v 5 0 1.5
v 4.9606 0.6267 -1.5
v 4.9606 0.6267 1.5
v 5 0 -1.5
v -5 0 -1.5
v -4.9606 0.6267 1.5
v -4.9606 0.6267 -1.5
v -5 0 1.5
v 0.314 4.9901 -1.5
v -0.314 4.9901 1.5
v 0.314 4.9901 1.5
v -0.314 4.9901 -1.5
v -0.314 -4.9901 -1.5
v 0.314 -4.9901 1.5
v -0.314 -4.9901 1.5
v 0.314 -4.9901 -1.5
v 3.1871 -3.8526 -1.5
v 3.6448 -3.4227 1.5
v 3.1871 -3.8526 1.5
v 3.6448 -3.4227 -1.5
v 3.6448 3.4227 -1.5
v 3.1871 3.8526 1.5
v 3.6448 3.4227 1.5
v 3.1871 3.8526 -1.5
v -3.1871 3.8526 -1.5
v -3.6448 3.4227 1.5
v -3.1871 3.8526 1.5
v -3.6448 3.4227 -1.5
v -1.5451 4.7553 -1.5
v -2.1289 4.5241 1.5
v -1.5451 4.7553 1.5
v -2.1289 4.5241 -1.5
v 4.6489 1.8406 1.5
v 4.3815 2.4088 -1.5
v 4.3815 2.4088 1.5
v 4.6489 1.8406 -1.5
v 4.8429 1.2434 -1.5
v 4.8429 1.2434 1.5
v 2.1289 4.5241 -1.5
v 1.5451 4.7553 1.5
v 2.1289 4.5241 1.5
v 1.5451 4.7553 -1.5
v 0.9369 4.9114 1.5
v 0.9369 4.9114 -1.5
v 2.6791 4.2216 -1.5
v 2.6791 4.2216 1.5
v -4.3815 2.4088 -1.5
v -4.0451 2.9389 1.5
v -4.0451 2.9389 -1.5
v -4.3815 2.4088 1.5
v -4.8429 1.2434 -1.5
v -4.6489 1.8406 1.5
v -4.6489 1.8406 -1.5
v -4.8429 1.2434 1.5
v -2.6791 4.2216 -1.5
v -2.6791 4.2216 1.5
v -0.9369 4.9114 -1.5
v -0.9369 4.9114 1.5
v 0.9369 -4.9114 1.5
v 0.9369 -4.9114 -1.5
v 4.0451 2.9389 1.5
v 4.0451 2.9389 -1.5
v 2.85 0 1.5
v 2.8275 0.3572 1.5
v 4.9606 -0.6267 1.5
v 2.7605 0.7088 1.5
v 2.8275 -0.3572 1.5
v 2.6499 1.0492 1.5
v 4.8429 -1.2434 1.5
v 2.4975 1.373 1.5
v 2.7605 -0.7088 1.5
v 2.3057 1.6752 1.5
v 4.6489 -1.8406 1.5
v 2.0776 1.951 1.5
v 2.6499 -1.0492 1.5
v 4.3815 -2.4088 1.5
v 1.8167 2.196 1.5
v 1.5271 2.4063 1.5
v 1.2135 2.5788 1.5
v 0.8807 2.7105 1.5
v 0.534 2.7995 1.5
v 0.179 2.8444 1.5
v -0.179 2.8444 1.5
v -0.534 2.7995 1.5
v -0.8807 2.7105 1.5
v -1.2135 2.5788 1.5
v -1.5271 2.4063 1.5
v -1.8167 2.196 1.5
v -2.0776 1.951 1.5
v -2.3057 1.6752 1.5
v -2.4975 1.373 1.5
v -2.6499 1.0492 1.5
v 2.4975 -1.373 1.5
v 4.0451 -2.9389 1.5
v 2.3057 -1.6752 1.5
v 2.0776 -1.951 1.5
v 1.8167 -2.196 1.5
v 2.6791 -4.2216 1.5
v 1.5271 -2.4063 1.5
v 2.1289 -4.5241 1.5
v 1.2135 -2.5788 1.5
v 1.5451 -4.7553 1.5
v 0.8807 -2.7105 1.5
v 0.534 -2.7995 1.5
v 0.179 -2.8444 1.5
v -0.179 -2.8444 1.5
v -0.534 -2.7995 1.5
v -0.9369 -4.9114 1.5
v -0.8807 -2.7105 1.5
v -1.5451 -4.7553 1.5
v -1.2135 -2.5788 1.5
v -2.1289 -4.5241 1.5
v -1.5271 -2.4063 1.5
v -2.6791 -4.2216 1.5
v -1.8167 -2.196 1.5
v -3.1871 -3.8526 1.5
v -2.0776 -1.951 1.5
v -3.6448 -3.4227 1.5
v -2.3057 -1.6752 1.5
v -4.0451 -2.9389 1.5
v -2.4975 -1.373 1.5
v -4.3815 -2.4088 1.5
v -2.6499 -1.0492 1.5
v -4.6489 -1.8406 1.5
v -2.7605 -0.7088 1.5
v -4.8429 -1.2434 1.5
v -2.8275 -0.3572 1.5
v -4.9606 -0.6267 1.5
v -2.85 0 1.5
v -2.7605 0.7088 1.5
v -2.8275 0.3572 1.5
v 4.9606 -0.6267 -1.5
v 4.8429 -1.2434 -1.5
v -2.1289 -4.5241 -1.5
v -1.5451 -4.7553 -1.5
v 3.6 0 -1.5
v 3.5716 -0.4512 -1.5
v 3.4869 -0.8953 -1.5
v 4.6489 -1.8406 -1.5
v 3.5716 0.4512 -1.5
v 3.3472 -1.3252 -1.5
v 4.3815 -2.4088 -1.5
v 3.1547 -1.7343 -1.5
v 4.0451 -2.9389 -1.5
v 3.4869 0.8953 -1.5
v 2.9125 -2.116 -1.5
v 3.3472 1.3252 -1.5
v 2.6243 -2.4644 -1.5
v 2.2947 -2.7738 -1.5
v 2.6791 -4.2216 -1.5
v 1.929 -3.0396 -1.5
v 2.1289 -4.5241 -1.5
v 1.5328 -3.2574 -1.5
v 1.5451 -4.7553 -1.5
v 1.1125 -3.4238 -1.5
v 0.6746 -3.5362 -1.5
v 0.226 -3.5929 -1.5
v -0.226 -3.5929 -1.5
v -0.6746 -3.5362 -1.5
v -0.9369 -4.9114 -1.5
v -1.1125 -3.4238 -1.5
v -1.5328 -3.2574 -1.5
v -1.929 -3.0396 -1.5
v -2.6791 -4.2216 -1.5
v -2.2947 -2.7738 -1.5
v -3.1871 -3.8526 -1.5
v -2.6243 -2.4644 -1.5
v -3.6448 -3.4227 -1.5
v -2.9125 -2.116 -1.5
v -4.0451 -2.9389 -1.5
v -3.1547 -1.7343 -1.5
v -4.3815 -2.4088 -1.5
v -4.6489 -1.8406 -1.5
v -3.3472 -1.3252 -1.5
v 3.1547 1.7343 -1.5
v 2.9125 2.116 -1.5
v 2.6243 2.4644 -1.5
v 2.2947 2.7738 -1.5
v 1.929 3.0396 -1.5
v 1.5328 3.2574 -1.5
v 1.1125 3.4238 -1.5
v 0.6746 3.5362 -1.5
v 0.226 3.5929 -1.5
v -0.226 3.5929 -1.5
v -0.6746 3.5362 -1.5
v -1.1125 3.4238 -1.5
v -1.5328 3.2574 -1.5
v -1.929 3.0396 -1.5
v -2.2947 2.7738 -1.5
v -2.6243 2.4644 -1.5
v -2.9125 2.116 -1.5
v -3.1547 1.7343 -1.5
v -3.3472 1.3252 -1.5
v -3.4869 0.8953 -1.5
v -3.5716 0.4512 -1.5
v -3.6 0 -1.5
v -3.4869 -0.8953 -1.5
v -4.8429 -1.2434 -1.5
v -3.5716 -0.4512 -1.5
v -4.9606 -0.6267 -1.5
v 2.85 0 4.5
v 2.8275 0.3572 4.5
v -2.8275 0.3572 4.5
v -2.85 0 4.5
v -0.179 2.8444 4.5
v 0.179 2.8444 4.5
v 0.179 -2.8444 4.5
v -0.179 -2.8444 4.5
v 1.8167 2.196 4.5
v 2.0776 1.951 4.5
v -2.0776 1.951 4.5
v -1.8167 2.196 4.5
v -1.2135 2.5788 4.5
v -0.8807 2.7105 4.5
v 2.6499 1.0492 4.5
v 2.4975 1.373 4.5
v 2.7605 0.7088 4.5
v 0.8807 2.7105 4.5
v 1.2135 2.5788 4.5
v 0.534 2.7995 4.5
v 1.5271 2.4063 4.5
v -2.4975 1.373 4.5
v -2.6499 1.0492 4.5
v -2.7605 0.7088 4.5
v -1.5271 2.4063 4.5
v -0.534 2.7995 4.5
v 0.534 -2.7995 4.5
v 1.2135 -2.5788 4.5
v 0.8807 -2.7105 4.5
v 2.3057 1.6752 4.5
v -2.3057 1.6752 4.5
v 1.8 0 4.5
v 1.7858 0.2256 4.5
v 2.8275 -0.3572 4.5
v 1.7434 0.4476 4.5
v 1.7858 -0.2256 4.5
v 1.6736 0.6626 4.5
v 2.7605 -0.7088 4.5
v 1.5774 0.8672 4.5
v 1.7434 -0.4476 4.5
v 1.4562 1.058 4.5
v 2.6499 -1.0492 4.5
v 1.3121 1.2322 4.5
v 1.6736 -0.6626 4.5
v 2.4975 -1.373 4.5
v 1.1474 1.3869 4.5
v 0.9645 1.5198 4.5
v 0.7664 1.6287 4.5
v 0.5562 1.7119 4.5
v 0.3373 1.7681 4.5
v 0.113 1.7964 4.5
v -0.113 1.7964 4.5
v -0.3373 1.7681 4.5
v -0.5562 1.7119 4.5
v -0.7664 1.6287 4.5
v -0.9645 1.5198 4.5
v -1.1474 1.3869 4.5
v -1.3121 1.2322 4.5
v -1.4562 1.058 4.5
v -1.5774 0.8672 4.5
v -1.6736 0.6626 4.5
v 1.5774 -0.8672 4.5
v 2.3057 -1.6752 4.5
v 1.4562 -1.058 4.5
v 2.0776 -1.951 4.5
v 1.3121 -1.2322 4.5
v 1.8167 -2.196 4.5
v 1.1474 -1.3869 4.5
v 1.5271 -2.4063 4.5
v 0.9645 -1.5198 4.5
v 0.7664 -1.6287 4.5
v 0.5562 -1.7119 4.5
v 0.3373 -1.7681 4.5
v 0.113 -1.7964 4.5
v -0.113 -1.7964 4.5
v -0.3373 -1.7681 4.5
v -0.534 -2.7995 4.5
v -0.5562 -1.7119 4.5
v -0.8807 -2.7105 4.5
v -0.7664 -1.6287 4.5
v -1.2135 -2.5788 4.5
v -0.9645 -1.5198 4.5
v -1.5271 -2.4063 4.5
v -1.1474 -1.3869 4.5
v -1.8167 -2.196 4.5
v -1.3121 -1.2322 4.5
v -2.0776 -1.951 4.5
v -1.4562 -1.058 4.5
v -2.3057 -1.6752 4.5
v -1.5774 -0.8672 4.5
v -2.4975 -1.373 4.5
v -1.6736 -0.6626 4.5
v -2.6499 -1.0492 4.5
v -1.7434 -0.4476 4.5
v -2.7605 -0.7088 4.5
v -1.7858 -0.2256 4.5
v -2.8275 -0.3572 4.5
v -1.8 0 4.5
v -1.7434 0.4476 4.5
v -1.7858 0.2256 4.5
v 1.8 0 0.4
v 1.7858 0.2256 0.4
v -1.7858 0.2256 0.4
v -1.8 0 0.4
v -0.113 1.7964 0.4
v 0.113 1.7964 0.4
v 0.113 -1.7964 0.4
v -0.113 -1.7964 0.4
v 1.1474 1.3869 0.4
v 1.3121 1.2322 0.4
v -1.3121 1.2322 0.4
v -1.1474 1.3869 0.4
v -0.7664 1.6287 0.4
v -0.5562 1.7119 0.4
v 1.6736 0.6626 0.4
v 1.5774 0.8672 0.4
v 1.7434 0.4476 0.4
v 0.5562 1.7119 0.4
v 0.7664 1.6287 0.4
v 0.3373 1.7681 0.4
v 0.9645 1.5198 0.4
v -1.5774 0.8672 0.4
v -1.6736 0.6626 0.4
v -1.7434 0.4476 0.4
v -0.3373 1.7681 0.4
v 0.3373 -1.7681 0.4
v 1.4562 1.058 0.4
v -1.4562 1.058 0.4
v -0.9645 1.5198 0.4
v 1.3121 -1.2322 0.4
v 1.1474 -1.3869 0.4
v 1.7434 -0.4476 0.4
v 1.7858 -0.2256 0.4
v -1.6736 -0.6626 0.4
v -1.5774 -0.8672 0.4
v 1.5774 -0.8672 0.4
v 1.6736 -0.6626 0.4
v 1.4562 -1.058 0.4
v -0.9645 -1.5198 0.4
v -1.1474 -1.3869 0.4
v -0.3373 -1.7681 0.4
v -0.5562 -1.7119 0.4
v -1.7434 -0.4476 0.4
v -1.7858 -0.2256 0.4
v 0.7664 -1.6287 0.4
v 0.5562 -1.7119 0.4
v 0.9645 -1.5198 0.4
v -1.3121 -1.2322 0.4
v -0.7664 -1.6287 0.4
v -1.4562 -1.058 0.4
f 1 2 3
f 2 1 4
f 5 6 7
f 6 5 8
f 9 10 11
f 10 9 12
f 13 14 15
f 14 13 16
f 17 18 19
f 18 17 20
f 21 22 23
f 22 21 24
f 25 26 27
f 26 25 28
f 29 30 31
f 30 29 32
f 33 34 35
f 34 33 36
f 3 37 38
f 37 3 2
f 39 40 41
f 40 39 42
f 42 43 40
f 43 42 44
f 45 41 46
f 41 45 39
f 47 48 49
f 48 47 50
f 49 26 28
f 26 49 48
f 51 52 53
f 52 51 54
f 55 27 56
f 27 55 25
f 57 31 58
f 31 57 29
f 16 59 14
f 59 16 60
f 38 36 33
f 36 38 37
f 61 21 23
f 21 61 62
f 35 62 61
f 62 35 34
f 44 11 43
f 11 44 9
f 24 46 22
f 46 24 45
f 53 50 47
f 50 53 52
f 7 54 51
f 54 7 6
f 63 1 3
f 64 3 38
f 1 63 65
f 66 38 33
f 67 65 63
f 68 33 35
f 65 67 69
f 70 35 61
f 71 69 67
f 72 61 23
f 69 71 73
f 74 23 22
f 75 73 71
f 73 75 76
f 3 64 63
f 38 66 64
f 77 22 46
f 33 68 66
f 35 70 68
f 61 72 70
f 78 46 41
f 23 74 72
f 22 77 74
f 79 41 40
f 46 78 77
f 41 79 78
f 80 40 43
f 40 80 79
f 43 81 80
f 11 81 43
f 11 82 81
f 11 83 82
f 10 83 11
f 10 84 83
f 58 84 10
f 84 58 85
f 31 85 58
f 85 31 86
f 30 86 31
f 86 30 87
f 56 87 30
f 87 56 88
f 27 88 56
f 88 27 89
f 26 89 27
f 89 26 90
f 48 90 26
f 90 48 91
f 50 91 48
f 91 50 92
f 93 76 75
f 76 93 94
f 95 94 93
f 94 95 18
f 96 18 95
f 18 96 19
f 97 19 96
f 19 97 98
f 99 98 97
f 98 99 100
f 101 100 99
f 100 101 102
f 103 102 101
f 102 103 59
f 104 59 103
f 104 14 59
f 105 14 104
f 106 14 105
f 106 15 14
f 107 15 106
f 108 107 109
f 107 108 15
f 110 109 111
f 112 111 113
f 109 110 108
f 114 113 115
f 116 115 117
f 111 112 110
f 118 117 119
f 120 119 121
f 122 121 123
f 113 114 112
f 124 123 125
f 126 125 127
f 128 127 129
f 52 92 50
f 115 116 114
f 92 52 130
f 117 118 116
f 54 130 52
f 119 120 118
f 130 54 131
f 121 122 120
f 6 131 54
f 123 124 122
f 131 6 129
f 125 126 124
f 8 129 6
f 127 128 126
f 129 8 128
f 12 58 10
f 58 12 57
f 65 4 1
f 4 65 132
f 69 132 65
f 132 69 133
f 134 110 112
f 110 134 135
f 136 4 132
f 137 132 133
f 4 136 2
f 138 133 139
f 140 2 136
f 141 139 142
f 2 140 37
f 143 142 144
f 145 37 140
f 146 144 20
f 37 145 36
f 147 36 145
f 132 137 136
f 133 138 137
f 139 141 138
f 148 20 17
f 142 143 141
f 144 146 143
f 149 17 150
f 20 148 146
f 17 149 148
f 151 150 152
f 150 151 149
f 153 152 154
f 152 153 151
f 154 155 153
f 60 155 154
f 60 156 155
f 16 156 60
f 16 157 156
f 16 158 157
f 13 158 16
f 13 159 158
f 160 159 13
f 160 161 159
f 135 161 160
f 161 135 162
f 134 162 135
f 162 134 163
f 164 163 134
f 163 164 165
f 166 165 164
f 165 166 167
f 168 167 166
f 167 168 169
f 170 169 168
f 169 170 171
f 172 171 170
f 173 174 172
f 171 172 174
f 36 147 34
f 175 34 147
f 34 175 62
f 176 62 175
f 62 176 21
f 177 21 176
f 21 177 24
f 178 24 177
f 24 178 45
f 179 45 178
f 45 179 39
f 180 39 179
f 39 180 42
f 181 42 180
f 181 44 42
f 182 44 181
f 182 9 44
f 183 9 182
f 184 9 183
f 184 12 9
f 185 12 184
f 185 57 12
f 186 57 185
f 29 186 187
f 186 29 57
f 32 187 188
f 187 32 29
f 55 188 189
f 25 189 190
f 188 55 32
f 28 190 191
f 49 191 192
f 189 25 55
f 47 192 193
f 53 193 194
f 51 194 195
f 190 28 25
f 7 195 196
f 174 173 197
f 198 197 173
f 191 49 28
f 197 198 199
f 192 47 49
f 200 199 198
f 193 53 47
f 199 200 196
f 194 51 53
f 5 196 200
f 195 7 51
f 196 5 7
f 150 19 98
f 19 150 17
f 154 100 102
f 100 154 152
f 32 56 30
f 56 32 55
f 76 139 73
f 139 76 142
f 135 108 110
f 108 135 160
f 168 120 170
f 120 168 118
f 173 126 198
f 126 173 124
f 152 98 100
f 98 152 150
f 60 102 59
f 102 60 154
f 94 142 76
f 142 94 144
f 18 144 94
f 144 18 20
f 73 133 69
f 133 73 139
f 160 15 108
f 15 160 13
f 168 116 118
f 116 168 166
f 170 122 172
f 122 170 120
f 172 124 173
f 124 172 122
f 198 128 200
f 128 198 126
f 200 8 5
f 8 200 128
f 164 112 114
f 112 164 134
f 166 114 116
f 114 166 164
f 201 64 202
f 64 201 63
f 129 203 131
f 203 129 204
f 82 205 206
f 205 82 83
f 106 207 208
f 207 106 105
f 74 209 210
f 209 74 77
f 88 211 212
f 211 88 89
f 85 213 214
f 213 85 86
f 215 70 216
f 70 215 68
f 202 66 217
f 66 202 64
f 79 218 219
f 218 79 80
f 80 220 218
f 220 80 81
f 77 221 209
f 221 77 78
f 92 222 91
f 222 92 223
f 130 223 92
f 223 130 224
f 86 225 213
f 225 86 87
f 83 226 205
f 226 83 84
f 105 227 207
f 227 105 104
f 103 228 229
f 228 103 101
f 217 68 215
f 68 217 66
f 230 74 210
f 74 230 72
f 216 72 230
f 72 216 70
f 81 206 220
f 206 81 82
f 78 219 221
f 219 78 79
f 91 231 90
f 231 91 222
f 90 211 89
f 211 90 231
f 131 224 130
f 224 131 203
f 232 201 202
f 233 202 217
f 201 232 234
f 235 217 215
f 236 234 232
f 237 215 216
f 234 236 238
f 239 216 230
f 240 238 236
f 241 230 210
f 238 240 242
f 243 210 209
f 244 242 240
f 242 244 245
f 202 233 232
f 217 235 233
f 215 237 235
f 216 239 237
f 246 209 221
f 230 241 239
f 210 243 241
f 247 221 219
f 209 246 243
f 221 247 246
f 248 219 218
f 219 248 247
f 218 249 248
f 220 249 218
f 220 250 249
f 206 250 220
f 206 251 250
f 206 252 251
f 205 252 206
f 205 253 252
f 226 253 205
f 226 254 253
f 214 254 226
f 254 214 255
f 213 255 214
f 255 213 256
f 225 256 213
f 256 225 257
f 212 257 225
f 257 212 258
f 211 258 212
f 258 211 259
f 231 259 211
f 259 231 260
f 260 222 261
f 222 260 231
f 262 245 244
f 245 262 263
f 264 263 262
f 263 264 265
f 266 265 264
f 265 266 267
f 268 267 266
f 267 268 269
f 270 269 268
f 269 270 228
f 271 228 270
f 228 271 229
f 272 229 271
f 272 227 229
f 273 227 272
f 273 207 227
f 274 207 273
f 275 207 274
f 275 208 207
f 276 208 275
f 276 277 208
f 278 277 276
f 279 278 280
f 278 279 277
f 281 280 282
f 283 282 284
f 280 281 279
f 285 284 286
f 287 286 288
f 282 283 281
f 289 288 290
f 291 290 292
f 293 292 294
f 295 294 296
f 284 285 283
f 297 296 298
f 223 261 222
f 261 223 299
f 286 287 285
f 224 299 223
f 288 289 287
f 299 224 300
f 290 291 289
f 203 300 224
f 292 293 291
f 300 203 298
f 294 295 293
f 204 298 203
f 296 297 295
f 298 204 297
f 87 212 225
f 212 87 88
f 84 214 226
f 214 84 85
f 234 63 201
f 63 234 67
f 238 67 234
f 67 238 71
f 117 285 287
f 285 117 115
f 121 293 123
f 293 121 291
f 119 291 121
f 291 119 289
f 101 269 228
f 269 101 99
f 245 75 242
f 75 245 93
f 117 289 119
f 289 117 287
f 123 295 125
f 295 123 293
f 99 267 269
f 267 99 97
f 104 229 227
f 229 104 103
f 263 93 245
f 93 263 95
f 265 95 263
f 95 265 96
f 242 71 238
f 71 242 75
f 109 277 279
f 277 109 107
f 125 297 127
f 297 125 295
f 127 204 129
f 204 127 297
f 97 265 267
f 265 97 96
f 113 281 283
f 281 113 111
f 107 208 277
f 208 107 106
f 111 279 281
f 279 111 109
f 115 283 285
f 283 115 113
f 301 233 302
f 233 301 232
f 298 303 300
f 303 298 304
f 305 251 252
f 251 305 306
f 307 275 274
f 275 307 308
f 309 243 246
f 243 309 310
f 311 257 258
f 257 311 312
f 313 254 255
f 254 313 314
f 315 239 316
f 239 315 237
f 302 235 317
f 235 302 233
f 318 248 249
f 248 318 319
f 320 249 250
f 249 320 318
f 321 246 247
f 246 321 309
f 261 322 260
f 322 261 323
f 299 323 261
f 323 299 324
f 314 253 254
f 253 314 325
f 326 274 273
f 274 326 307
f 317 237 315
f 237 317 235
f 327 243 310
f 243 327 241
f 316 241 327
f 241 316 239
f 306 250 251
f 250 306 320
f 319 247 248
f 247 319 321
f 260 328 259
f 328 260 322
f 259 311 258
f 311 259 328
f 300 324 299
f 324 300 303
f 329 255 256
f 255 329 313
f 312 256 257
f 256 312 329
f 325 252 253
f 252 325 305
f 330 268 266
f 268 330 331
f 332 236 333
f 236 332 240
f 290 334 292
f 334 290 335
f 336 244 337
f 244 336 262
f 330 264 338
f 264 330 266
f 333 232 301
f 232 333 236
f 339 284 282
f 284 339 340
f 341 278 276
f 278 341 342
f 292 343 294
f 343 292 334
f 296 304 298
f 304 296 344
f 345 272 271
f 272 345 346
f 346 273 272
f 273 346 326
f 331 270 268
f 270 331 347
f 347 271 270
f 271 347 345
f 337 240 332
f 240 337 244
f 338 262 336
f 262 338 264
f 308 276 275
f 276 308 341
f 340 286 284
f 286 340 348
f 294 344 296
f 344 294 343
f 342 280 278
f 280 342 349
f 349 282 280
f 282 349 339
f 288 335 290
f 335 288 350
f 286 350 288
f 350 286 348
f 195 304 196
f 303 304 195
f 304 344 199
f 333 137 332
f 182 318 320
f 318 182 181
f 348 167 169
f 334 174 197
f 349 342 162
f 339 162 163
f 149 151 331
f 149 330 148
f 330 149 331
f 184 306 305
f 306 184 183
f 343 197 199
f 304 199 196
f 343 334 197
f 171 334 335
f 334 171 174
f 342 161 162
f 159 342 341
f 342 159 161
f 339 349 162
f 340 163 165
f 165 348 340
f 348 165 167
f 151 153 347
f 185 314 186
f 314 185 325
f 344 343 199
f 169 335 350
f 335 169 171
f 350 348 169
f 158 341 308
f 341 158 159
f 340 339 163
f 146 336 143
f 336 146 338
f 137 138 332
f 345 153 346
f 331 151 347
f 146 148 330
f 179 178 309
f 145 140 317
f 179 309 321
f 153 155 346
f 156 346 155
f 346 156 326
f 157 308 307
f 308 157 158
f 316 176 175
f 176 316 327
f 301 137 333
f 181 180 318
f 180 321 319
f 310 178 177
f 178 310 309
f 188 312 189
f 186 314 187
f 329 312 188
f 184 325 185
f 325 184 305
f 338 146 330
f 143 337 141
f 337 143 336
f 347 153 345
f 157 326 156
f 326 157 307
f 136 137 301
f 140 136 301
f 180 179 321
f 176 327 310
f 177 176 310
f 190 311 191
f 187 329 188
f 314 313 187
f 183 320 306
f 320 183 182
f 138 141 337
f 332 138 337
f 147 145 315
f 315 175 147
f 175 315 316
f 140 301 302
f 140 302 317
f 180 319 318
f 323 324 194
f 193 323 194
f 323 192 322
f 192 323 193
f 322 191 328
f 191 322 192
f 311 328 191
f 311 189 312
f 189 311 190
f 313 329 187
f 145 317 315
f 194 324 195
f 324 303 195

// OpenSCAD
$fn = 50;


difference() {
	union() {
		translate(v = [0, 0, -1.5000000000]) {
			rotate(a = [0, 0, 0]) {
				cylinder(h = 3, r = 5.0000000000);
			}
		}
		translate(v = [0, 0, -1.5000000000]) {
			rotate(a = [0, 0, 0]) {
				cylinder(h = 6, r = 2.8500000000);
			}
		}
	}
	union() {
		translate(v = [0, 0, -125.0000000000]) {
			rotate(a = [0, 0, 0]) {
				cylinder(h = 250, r = 1.8000000000);
			}
		}
		#translate(v = [0, 0, 0.4000000000]) {
			rotate(a = [0, 180, 0]) {
				cylinder(h = 1.9000000000, r1 = 1.8000000000, r2 = 3.6000000000);
			}
		}
		#translate(v = [0, 0, 4.5000000000]) {
			rotate(a = [0, 180, 0]) {
				cylinder(h = 6, r = 1.8000000000);
			}
		}
	}
}
